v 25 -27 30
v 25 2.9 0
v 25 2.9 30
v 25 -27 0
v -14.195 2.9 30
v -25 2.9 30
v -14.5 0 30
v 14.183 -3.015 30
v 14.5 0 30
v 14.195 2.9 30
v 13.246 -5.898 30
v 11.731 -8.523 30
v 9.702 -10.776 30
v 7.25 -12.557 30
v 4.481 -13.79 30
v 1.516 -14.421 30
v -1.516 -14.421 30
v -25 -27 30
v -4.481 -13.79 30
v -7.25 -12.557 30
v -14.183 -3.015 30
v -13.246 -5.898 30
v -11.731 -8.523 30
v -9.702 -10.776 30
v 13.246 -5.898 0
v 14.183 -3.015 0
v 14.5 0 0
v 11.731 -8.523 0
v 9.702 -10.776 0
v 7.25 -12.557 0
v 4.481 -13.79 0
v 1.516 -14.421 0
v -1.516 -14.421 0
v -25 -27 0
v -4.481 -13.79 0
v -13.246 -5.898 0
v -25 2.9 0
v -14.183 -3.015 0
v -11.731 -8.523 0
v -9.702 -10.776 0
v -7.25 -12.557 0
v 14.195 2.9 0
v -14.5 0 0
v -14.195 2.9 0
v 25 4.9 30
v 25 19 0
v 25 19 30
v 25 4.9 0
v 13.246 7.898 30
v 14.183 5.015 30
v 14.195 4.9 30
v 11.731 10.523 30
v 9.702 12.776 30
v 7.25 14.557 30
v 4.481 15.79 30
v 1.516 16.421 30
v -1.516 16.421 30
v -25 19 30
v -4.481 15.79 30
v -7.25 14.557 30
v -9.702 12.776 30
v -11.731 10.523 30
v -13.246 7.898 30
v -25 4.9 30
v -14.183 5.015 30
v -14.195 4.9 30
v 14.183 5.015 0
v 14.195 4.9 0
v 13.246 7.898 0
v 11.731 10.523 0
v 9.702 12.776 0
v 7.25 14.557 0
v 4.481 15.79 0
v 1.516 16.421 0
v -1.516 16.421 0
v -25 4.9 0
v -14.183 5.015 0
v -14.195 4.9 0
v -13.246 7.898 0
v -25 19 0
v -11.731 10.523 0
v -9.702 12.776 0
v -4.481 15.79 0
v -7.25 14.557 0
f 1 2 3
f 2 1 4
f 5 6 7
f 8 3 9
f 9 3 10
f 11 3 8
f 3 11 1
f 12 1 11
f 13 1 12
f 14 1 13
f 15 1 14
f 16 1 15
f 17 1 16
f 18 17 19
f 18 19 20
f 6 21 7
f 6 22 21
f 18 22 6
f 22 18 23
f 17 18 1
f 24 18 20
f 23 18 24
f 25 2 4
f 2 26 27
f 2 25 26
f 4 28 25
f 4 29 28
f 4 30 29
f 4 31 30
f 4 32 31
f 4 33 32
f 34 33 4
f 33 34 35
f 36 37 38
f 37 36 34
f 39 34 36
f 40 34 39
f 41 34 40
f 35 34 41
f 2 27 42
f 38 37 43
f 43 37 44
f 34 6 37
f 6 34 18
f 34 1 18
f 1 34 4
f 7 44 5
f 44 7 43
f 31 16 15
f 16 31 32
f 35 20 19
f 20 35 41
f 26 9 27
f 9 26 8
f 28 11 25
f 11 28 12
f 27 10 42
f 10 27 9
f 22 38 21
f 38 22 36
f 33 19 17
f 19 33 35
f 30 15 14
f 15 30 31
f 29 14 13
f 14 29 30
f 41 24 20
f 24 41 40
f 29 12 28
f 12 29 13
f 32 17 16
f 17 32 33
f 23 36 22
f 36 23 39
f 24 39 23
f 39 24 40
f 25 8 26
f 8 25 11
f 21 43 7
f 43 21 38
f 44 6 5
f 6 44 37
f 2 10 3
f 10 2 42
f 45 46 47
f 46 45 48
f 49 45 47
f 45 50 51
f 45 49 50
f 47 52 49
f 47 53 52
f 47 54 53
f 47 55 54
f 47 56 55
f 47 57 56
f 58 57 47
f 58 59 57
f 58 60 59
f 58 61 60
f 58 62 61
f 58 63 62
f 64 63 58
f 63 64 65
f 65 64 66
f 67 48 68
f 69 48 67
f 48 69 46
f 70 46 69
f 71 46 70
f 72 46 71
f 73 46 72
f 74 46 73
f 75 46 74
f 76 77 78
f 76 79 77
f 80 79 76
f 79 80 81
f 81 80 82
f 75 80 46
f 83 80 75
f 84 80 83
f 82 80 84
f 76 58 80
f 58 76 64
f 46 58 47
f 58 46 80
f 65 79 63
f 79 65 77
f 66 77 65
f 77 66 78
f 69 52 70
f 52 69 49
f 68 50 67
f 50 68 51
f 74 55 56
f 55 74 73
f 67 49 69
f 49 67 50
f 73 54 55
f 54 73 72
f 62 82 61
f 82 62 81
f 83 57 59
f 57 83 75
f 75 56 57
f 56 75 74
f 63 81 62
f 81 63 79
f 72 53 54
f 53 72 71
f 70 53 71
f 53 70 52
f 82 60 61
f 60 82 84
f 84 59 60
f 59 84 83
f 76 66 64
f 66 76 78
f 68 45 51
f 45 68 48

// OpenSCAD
// postmount

//POST_DIAM=32;    // xander diagonal
POST_DIAM=29;    // xander vertical

B10_DIAM=11.1; // #10 bolt diameter with $fn=6
B10_HOLE=5.5;

HH = 30;


module cencube(A) {
  // centered cube, like cylinder
  translate([-A.x/2,-A.y/2,0]) cube(A);
}


module postmount(hh, post_diam, b10_hole) {
  // base postmount
  difference() {
    translate([0,-5,0]) cencube([50,15+post_diam,hh]);
    #translate([0,0,0]) cylinder(HH,d=POST_DIAM);
    //#translate([0,5+POST_DIAM*3/5,0]) cencube([50,10+POST_DIAM,HH]);
  }
}

module postmount1(hh, post_diam, b10_hole) {
  // bigger part of postmount
  difference() {
    postmount(hh, post_diam, b10_hole);
    #translate([0,5+POST_DIAM*3/5,0]) cencube([50,10+POST_DIAM,HH]);
  }
}

module postmount2(hh, post_diam, b10_hole) {
  // smaller part of postmount
  difference() {
    postmount(hh, post_diam, b10_hole);
    #translate([0,-5-POST_DIAM*2/5,0]) cencube([50,10+POST_DIAM,HH]);
  }
}

postmount1(HH,POST_DIAM,B10_HOLE);
translate([0,2,0]) postmount2(HH,POST_DIAM,B10_HOLE);
